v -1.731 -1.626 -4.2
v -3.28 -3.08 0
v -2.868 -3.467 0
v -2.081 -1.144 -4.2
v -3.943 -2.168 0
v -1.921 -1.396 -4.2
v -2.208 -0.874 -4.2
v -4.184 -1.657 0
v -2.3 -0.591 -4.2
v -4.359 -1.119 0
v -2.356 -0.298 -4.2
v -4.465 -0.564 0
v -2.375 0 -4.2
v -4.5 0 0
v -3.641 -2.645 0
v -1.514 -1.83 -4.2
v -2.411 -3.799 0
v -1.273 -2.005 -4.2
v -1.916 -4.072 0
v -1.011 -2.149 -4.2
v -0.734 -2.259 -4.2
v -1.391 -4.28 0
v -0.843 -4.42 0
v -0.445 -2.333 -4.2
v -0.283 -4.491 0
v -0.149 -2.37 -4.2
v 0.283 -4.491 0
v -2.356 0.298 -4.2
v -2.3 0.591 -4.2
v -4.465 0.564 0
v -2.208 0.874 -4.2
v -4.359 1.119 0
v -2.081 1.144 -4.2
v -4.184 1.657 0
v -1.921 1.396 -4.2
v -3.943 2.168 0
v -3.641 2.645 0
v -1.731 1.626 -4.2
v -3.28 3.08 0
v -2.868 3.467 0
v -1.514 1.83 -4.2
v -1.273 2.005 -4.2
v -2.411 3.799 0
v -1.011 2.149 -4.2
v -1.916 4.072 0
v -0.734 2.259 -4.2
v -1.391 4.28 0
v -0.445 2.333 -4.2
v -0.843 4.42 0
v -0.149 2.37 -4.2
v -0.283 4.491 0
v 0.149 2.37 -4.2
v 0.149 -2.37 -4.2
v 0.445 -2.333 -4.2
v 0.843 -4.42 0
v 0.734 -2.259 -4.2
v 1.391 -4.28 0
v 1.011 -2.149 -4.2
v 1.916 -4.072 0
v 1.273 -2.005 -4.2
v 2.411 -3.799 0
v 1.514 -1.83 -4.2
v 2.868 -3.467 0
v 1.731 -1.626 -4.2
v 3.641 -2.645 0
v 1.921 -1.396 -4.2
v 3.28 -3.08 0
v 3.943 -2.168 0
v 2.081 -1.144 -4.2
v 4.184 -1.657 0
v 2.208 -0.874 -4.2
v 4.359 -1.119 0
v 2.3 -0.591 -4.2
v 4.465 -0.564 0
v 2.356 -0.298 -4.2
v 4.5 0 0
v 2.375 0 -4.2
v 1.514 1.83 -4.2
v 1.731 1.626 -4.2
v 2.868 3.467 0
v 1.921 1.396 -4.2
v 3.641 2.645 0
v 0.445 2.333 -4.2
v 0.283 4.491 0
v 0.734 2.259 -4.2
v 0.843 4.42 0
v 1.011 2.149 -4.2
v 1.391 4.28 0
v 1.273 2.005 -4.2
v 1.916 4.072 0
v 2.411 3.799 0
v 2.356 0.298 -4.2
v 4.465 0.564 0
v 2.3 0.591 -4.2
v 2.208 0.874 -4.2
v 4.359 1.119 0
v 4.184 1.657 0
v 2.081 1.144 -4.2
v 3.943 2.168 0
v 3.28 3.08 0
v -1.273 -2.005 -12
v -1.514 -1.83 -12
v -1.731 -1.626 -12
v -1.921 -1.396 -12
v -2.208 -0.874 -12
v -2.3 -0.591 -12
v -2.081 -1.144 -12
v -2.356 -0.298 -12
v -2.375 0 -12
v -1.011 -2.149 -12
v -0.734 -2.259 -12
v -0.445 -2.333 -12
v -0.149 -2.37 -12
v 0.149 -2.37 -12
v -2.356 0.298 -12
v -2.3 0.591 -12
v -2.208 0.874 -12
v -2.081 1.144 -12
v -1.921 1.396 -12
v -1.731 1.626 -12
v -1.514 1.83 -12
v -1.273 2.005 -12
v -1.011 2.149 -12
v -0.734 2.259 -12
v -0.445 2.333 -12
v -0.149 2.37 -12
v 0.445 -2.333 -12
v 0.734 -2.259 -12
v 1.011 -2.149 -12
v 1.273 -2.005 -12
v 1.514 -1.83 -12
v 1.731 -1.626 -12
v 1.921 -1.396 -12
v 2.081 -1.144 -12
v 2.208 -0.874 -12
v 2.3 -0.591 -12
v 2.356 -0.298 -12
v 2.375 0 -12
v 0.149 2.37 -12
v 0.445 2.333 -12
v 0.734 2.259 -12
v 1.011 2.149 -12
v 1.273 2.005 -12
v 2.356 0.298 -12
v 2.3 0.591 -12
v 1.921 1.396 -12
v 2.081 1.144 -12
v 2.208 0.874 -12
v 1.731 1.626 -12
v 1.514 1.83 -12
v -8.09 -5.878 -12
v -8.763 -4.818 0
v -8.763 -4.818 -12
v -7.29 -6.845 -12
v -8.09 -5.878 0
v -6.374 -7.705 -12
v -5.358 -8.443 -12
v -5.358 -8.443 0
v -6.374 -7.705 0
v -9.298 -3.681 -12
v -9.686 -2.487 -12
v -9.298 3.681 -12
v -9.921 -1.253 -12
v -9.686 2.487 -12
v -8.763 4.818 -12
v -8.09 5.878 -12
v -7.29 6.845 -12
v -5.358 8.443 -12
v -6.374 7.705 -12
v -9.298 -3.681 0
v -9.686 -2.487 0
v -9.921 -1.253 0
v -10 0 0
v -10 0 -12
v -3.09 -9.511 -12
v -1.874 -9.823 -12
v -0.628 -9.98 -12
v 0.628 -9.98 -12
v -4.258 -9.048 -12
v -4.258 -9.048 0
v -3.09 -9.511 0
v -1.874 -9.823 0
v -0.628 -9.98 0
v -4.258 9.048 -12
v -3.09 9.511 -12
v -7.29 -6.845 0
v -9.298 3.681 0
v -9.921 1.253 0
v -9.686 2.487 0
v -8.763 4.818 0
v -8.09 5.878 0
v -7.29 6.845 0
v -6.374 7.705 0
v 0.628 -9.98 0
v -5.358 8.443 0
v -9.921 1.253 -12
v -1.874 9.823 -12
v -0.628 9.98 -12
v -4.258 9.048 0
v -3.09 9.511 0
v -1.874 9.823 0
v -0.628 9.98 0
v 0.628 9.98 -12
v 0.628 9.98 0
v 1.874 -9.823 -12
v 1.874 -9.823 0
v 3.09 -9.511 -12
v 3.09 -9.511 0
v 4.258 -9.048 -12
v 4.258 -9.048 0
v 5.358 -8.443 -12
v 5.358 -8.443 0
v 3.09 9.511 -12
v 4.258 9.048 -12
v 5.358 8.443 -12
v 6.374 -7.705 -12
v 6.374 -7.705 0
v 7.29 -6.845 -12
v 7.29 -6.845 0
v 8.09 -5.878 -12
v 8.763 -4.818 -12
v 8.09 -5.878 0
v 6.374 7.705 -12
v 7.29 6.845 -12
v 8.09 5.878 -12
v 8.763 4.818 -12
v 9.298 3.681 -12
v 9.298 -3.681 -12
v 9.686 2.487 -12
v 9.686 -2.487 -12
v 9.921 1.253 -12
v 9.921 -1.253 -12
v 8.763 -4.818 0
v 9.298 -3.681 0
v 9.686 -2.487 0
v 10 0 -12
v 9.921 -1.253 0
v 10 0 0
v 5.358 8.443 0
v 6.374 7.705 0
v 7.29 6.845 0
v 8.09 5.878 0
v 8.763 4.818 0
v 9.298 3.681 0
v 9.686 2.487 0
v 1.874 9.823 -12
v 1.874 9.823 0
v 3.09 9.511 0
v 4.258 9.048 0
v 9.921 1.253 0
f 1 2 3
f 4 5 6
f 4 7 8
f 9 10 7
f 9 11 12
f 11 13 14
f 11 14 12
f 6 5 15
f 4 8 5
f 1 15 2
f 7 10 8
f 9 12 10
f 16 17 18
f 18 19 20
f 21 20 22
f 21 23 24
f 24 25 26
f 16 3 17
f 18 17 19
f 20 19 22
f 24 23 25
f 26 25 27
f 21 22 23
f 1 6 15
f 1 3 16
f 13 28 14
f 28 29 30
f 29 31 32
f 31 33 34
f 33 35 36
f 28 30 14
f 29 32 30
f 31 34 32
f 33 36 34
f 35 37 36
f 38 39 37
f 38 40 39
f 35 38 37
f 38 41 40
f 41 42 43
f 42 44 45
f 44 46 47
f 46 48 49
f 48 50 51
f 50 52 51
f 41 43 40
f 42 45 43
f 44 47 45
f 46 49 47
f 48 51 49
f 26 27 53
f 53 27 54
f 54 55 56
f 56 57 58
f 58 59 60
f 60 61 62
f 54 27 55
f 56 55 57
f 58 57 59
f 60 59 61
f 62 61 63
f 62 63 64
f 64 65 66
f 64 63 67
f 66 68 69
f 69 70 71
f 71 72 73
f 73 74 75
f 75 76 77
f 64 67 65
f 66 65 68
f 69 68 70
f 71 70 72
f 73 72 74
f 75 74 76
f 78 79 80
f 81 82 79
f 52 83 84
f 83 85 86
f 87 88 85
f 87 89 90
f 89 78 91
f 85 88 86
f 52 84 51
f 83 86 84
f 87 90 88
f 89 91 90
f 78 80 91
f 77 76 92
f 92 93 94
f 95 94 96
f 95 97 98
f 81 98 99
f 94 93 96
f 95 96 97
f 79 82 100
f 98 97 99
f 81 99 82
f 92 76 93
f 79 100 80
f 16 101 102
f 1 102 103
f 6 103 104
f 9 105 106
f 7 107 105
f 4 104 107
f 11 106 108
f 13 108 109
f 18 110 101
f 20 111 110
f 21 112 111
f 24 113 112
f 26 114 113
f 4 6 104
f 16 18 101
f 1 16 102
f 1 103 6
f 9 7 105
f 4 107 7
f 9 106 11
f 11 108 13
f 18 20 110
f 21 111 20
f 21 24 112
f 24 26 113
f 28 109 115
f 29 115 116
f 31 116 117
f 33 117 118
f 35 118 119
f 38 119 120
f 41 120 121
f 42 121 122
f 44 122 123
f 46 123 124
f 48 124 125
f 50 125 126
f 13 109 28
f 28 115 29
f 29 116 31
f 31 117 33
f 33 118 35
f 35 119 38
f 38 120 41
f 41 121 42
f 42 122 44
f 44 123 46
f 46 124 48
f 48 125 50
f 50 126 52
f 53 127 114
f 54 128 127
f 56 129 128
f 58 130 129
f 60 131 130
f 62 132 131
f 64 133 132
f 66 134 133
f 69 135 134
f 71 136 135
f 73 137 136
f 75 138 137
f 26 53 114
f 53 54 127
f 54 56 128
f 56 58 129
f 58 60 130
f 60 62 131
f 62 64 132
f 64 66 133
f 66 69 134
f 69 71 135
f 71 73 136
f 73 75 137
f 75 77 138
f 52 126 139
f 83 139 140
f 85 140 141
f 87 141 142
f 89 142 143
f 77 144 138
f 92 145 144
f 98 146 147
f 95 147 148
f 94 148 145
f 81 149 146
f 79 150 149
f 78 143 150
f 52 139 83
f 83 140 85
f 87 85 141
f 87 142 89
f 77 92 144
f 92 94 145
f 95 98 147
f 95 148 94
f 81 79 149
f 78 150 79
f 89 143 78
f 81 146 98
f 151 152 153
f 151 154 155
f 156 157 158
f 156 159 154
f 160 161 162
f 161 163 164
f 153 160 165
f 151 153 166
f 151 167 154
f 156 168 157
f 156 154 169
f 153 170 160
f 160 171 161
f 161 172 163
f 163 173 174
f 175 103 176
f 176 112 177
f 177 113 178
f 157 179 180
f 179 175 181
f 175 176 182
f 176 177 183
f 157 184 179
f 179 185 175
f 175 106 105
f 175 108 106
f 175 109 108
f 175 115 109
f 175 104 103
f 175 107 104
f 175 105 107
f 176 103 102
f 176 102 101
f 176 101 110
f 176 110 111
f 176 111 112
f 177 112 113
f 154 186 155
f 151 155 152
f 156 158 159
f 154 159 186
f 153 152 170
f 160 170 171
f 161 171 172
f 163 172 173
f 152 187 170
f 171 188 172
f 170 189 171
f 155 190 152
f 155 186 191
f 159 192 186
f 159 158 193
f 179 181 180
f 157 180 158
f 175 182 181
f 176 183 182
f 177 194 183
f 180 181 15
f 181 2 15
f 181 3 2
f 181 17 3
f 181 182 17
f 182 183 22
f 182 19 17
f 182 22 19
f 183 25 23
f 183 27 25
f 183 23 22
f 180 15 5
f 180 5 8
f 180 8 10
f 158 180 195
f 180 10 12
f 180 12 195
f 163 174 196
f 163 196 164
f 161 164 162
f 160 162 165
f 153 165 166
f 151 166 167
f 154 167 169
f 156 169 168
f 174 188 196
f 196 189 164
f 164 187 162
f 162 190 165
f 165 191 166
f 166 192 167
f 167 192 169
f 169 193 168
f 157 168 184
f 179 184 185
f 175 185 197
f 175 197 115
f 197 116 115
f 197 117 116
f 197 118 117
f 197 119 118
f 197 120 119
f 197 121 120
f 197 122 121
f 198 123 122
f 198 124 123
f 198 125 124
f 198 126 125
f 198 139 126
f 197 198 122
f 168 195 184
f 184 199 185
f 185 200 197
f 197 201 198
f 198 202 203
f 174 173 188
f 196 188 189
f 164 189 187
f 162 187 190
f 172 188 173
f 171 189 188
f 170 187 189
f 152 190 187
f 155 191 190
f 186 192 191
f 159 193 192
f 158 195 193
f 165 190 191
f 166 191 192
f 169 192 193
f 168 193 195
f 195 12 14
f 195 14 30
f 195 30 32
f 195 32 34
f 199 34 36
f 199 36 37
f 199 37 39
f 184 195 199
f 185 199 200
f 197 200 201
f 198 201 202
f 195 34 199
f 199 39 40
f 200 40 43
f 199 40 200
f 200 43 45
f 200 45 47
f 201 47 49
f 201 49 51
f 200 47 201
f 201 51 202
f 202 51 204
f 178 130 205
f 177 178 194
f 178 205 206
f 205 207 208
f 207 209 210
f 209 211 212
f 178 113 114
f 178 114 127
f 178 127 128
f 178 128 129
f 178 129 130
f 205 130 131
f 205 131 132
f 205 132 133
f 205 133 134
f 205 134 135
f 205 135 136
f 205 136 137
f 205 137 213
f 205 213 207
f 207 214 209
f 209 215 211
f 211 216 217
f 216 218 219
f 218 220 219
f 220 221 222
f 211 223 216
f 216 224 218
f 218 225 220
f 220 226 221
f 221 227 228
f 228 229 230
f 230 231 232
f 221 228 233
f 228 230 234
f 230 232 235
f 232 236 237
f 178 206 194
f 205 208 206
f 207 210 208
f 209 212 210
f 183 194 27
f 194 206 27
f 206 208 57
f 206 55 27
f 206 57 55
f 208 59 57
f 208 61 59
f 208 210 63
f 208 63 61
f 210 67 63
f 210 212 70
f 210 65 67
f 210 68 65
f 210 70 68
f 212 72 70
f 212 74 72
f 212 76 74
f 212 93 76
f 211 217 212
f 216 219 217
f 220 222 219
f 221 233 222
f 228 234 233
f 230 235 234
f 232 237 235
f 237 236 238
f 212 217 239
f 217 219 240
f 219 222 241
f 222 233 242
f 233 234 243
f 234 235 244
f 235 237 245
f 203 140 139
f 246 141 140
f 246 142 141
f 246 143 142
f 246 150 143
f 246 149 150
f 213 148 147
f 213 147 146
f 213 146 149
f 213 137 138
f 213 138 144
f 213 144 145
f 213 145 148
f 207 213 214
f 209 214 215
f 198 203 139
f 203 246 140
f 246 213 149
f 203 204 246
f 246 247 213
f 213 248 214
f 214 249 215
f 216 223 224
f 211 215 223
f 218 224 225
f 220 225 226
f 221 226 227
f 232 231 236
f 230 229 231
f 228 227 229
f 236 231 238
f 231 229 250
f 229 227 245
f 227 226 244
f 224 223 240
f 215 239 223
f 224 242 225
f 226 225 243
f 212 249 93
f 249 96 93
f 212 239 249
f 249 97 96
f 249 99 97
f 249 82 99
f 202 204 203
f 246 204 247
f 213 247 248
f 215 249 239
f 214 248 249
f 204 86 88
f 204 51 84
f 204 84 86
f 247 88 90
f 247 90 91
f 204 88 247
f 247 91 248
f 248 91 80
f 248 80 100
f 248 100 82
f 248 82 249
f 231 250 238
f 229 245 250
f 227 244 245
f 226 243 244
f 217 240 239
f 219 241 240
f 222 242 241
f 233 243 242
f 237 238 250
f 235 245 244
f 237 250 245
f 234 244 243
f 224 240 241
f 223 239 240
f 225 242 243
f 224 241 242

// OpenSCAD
$fn = 50;

difference() {
	union() {
		translate(v = [0, 0, -12.0]) {
			cylinder(h = 12, r = 10.0);
		}
	}
	union() {
		translate(v = [0, 0, 0]) {
			rotate(a = [0, 0, 0]) {
				difference() {
					union() {
						translate(v = [0, 0, -15.0]) {
							cylinder(h = 15, r = 2.25);
						}
						translate(v = [0, 0, -4.2]) {
							cylinder(h = 4.2, r1 = 2.375, r2 = 4.5);
						}
						translate(v = [0, 0, -15.0]) {
							cylinder(h = 15, r = 2.375);
						}
						translate(v = [0, 0, -15.0]) {
							cylinder(h = 15, r = 2.25);
						}
					}
					union();
				}
			}
		}
	}
}
